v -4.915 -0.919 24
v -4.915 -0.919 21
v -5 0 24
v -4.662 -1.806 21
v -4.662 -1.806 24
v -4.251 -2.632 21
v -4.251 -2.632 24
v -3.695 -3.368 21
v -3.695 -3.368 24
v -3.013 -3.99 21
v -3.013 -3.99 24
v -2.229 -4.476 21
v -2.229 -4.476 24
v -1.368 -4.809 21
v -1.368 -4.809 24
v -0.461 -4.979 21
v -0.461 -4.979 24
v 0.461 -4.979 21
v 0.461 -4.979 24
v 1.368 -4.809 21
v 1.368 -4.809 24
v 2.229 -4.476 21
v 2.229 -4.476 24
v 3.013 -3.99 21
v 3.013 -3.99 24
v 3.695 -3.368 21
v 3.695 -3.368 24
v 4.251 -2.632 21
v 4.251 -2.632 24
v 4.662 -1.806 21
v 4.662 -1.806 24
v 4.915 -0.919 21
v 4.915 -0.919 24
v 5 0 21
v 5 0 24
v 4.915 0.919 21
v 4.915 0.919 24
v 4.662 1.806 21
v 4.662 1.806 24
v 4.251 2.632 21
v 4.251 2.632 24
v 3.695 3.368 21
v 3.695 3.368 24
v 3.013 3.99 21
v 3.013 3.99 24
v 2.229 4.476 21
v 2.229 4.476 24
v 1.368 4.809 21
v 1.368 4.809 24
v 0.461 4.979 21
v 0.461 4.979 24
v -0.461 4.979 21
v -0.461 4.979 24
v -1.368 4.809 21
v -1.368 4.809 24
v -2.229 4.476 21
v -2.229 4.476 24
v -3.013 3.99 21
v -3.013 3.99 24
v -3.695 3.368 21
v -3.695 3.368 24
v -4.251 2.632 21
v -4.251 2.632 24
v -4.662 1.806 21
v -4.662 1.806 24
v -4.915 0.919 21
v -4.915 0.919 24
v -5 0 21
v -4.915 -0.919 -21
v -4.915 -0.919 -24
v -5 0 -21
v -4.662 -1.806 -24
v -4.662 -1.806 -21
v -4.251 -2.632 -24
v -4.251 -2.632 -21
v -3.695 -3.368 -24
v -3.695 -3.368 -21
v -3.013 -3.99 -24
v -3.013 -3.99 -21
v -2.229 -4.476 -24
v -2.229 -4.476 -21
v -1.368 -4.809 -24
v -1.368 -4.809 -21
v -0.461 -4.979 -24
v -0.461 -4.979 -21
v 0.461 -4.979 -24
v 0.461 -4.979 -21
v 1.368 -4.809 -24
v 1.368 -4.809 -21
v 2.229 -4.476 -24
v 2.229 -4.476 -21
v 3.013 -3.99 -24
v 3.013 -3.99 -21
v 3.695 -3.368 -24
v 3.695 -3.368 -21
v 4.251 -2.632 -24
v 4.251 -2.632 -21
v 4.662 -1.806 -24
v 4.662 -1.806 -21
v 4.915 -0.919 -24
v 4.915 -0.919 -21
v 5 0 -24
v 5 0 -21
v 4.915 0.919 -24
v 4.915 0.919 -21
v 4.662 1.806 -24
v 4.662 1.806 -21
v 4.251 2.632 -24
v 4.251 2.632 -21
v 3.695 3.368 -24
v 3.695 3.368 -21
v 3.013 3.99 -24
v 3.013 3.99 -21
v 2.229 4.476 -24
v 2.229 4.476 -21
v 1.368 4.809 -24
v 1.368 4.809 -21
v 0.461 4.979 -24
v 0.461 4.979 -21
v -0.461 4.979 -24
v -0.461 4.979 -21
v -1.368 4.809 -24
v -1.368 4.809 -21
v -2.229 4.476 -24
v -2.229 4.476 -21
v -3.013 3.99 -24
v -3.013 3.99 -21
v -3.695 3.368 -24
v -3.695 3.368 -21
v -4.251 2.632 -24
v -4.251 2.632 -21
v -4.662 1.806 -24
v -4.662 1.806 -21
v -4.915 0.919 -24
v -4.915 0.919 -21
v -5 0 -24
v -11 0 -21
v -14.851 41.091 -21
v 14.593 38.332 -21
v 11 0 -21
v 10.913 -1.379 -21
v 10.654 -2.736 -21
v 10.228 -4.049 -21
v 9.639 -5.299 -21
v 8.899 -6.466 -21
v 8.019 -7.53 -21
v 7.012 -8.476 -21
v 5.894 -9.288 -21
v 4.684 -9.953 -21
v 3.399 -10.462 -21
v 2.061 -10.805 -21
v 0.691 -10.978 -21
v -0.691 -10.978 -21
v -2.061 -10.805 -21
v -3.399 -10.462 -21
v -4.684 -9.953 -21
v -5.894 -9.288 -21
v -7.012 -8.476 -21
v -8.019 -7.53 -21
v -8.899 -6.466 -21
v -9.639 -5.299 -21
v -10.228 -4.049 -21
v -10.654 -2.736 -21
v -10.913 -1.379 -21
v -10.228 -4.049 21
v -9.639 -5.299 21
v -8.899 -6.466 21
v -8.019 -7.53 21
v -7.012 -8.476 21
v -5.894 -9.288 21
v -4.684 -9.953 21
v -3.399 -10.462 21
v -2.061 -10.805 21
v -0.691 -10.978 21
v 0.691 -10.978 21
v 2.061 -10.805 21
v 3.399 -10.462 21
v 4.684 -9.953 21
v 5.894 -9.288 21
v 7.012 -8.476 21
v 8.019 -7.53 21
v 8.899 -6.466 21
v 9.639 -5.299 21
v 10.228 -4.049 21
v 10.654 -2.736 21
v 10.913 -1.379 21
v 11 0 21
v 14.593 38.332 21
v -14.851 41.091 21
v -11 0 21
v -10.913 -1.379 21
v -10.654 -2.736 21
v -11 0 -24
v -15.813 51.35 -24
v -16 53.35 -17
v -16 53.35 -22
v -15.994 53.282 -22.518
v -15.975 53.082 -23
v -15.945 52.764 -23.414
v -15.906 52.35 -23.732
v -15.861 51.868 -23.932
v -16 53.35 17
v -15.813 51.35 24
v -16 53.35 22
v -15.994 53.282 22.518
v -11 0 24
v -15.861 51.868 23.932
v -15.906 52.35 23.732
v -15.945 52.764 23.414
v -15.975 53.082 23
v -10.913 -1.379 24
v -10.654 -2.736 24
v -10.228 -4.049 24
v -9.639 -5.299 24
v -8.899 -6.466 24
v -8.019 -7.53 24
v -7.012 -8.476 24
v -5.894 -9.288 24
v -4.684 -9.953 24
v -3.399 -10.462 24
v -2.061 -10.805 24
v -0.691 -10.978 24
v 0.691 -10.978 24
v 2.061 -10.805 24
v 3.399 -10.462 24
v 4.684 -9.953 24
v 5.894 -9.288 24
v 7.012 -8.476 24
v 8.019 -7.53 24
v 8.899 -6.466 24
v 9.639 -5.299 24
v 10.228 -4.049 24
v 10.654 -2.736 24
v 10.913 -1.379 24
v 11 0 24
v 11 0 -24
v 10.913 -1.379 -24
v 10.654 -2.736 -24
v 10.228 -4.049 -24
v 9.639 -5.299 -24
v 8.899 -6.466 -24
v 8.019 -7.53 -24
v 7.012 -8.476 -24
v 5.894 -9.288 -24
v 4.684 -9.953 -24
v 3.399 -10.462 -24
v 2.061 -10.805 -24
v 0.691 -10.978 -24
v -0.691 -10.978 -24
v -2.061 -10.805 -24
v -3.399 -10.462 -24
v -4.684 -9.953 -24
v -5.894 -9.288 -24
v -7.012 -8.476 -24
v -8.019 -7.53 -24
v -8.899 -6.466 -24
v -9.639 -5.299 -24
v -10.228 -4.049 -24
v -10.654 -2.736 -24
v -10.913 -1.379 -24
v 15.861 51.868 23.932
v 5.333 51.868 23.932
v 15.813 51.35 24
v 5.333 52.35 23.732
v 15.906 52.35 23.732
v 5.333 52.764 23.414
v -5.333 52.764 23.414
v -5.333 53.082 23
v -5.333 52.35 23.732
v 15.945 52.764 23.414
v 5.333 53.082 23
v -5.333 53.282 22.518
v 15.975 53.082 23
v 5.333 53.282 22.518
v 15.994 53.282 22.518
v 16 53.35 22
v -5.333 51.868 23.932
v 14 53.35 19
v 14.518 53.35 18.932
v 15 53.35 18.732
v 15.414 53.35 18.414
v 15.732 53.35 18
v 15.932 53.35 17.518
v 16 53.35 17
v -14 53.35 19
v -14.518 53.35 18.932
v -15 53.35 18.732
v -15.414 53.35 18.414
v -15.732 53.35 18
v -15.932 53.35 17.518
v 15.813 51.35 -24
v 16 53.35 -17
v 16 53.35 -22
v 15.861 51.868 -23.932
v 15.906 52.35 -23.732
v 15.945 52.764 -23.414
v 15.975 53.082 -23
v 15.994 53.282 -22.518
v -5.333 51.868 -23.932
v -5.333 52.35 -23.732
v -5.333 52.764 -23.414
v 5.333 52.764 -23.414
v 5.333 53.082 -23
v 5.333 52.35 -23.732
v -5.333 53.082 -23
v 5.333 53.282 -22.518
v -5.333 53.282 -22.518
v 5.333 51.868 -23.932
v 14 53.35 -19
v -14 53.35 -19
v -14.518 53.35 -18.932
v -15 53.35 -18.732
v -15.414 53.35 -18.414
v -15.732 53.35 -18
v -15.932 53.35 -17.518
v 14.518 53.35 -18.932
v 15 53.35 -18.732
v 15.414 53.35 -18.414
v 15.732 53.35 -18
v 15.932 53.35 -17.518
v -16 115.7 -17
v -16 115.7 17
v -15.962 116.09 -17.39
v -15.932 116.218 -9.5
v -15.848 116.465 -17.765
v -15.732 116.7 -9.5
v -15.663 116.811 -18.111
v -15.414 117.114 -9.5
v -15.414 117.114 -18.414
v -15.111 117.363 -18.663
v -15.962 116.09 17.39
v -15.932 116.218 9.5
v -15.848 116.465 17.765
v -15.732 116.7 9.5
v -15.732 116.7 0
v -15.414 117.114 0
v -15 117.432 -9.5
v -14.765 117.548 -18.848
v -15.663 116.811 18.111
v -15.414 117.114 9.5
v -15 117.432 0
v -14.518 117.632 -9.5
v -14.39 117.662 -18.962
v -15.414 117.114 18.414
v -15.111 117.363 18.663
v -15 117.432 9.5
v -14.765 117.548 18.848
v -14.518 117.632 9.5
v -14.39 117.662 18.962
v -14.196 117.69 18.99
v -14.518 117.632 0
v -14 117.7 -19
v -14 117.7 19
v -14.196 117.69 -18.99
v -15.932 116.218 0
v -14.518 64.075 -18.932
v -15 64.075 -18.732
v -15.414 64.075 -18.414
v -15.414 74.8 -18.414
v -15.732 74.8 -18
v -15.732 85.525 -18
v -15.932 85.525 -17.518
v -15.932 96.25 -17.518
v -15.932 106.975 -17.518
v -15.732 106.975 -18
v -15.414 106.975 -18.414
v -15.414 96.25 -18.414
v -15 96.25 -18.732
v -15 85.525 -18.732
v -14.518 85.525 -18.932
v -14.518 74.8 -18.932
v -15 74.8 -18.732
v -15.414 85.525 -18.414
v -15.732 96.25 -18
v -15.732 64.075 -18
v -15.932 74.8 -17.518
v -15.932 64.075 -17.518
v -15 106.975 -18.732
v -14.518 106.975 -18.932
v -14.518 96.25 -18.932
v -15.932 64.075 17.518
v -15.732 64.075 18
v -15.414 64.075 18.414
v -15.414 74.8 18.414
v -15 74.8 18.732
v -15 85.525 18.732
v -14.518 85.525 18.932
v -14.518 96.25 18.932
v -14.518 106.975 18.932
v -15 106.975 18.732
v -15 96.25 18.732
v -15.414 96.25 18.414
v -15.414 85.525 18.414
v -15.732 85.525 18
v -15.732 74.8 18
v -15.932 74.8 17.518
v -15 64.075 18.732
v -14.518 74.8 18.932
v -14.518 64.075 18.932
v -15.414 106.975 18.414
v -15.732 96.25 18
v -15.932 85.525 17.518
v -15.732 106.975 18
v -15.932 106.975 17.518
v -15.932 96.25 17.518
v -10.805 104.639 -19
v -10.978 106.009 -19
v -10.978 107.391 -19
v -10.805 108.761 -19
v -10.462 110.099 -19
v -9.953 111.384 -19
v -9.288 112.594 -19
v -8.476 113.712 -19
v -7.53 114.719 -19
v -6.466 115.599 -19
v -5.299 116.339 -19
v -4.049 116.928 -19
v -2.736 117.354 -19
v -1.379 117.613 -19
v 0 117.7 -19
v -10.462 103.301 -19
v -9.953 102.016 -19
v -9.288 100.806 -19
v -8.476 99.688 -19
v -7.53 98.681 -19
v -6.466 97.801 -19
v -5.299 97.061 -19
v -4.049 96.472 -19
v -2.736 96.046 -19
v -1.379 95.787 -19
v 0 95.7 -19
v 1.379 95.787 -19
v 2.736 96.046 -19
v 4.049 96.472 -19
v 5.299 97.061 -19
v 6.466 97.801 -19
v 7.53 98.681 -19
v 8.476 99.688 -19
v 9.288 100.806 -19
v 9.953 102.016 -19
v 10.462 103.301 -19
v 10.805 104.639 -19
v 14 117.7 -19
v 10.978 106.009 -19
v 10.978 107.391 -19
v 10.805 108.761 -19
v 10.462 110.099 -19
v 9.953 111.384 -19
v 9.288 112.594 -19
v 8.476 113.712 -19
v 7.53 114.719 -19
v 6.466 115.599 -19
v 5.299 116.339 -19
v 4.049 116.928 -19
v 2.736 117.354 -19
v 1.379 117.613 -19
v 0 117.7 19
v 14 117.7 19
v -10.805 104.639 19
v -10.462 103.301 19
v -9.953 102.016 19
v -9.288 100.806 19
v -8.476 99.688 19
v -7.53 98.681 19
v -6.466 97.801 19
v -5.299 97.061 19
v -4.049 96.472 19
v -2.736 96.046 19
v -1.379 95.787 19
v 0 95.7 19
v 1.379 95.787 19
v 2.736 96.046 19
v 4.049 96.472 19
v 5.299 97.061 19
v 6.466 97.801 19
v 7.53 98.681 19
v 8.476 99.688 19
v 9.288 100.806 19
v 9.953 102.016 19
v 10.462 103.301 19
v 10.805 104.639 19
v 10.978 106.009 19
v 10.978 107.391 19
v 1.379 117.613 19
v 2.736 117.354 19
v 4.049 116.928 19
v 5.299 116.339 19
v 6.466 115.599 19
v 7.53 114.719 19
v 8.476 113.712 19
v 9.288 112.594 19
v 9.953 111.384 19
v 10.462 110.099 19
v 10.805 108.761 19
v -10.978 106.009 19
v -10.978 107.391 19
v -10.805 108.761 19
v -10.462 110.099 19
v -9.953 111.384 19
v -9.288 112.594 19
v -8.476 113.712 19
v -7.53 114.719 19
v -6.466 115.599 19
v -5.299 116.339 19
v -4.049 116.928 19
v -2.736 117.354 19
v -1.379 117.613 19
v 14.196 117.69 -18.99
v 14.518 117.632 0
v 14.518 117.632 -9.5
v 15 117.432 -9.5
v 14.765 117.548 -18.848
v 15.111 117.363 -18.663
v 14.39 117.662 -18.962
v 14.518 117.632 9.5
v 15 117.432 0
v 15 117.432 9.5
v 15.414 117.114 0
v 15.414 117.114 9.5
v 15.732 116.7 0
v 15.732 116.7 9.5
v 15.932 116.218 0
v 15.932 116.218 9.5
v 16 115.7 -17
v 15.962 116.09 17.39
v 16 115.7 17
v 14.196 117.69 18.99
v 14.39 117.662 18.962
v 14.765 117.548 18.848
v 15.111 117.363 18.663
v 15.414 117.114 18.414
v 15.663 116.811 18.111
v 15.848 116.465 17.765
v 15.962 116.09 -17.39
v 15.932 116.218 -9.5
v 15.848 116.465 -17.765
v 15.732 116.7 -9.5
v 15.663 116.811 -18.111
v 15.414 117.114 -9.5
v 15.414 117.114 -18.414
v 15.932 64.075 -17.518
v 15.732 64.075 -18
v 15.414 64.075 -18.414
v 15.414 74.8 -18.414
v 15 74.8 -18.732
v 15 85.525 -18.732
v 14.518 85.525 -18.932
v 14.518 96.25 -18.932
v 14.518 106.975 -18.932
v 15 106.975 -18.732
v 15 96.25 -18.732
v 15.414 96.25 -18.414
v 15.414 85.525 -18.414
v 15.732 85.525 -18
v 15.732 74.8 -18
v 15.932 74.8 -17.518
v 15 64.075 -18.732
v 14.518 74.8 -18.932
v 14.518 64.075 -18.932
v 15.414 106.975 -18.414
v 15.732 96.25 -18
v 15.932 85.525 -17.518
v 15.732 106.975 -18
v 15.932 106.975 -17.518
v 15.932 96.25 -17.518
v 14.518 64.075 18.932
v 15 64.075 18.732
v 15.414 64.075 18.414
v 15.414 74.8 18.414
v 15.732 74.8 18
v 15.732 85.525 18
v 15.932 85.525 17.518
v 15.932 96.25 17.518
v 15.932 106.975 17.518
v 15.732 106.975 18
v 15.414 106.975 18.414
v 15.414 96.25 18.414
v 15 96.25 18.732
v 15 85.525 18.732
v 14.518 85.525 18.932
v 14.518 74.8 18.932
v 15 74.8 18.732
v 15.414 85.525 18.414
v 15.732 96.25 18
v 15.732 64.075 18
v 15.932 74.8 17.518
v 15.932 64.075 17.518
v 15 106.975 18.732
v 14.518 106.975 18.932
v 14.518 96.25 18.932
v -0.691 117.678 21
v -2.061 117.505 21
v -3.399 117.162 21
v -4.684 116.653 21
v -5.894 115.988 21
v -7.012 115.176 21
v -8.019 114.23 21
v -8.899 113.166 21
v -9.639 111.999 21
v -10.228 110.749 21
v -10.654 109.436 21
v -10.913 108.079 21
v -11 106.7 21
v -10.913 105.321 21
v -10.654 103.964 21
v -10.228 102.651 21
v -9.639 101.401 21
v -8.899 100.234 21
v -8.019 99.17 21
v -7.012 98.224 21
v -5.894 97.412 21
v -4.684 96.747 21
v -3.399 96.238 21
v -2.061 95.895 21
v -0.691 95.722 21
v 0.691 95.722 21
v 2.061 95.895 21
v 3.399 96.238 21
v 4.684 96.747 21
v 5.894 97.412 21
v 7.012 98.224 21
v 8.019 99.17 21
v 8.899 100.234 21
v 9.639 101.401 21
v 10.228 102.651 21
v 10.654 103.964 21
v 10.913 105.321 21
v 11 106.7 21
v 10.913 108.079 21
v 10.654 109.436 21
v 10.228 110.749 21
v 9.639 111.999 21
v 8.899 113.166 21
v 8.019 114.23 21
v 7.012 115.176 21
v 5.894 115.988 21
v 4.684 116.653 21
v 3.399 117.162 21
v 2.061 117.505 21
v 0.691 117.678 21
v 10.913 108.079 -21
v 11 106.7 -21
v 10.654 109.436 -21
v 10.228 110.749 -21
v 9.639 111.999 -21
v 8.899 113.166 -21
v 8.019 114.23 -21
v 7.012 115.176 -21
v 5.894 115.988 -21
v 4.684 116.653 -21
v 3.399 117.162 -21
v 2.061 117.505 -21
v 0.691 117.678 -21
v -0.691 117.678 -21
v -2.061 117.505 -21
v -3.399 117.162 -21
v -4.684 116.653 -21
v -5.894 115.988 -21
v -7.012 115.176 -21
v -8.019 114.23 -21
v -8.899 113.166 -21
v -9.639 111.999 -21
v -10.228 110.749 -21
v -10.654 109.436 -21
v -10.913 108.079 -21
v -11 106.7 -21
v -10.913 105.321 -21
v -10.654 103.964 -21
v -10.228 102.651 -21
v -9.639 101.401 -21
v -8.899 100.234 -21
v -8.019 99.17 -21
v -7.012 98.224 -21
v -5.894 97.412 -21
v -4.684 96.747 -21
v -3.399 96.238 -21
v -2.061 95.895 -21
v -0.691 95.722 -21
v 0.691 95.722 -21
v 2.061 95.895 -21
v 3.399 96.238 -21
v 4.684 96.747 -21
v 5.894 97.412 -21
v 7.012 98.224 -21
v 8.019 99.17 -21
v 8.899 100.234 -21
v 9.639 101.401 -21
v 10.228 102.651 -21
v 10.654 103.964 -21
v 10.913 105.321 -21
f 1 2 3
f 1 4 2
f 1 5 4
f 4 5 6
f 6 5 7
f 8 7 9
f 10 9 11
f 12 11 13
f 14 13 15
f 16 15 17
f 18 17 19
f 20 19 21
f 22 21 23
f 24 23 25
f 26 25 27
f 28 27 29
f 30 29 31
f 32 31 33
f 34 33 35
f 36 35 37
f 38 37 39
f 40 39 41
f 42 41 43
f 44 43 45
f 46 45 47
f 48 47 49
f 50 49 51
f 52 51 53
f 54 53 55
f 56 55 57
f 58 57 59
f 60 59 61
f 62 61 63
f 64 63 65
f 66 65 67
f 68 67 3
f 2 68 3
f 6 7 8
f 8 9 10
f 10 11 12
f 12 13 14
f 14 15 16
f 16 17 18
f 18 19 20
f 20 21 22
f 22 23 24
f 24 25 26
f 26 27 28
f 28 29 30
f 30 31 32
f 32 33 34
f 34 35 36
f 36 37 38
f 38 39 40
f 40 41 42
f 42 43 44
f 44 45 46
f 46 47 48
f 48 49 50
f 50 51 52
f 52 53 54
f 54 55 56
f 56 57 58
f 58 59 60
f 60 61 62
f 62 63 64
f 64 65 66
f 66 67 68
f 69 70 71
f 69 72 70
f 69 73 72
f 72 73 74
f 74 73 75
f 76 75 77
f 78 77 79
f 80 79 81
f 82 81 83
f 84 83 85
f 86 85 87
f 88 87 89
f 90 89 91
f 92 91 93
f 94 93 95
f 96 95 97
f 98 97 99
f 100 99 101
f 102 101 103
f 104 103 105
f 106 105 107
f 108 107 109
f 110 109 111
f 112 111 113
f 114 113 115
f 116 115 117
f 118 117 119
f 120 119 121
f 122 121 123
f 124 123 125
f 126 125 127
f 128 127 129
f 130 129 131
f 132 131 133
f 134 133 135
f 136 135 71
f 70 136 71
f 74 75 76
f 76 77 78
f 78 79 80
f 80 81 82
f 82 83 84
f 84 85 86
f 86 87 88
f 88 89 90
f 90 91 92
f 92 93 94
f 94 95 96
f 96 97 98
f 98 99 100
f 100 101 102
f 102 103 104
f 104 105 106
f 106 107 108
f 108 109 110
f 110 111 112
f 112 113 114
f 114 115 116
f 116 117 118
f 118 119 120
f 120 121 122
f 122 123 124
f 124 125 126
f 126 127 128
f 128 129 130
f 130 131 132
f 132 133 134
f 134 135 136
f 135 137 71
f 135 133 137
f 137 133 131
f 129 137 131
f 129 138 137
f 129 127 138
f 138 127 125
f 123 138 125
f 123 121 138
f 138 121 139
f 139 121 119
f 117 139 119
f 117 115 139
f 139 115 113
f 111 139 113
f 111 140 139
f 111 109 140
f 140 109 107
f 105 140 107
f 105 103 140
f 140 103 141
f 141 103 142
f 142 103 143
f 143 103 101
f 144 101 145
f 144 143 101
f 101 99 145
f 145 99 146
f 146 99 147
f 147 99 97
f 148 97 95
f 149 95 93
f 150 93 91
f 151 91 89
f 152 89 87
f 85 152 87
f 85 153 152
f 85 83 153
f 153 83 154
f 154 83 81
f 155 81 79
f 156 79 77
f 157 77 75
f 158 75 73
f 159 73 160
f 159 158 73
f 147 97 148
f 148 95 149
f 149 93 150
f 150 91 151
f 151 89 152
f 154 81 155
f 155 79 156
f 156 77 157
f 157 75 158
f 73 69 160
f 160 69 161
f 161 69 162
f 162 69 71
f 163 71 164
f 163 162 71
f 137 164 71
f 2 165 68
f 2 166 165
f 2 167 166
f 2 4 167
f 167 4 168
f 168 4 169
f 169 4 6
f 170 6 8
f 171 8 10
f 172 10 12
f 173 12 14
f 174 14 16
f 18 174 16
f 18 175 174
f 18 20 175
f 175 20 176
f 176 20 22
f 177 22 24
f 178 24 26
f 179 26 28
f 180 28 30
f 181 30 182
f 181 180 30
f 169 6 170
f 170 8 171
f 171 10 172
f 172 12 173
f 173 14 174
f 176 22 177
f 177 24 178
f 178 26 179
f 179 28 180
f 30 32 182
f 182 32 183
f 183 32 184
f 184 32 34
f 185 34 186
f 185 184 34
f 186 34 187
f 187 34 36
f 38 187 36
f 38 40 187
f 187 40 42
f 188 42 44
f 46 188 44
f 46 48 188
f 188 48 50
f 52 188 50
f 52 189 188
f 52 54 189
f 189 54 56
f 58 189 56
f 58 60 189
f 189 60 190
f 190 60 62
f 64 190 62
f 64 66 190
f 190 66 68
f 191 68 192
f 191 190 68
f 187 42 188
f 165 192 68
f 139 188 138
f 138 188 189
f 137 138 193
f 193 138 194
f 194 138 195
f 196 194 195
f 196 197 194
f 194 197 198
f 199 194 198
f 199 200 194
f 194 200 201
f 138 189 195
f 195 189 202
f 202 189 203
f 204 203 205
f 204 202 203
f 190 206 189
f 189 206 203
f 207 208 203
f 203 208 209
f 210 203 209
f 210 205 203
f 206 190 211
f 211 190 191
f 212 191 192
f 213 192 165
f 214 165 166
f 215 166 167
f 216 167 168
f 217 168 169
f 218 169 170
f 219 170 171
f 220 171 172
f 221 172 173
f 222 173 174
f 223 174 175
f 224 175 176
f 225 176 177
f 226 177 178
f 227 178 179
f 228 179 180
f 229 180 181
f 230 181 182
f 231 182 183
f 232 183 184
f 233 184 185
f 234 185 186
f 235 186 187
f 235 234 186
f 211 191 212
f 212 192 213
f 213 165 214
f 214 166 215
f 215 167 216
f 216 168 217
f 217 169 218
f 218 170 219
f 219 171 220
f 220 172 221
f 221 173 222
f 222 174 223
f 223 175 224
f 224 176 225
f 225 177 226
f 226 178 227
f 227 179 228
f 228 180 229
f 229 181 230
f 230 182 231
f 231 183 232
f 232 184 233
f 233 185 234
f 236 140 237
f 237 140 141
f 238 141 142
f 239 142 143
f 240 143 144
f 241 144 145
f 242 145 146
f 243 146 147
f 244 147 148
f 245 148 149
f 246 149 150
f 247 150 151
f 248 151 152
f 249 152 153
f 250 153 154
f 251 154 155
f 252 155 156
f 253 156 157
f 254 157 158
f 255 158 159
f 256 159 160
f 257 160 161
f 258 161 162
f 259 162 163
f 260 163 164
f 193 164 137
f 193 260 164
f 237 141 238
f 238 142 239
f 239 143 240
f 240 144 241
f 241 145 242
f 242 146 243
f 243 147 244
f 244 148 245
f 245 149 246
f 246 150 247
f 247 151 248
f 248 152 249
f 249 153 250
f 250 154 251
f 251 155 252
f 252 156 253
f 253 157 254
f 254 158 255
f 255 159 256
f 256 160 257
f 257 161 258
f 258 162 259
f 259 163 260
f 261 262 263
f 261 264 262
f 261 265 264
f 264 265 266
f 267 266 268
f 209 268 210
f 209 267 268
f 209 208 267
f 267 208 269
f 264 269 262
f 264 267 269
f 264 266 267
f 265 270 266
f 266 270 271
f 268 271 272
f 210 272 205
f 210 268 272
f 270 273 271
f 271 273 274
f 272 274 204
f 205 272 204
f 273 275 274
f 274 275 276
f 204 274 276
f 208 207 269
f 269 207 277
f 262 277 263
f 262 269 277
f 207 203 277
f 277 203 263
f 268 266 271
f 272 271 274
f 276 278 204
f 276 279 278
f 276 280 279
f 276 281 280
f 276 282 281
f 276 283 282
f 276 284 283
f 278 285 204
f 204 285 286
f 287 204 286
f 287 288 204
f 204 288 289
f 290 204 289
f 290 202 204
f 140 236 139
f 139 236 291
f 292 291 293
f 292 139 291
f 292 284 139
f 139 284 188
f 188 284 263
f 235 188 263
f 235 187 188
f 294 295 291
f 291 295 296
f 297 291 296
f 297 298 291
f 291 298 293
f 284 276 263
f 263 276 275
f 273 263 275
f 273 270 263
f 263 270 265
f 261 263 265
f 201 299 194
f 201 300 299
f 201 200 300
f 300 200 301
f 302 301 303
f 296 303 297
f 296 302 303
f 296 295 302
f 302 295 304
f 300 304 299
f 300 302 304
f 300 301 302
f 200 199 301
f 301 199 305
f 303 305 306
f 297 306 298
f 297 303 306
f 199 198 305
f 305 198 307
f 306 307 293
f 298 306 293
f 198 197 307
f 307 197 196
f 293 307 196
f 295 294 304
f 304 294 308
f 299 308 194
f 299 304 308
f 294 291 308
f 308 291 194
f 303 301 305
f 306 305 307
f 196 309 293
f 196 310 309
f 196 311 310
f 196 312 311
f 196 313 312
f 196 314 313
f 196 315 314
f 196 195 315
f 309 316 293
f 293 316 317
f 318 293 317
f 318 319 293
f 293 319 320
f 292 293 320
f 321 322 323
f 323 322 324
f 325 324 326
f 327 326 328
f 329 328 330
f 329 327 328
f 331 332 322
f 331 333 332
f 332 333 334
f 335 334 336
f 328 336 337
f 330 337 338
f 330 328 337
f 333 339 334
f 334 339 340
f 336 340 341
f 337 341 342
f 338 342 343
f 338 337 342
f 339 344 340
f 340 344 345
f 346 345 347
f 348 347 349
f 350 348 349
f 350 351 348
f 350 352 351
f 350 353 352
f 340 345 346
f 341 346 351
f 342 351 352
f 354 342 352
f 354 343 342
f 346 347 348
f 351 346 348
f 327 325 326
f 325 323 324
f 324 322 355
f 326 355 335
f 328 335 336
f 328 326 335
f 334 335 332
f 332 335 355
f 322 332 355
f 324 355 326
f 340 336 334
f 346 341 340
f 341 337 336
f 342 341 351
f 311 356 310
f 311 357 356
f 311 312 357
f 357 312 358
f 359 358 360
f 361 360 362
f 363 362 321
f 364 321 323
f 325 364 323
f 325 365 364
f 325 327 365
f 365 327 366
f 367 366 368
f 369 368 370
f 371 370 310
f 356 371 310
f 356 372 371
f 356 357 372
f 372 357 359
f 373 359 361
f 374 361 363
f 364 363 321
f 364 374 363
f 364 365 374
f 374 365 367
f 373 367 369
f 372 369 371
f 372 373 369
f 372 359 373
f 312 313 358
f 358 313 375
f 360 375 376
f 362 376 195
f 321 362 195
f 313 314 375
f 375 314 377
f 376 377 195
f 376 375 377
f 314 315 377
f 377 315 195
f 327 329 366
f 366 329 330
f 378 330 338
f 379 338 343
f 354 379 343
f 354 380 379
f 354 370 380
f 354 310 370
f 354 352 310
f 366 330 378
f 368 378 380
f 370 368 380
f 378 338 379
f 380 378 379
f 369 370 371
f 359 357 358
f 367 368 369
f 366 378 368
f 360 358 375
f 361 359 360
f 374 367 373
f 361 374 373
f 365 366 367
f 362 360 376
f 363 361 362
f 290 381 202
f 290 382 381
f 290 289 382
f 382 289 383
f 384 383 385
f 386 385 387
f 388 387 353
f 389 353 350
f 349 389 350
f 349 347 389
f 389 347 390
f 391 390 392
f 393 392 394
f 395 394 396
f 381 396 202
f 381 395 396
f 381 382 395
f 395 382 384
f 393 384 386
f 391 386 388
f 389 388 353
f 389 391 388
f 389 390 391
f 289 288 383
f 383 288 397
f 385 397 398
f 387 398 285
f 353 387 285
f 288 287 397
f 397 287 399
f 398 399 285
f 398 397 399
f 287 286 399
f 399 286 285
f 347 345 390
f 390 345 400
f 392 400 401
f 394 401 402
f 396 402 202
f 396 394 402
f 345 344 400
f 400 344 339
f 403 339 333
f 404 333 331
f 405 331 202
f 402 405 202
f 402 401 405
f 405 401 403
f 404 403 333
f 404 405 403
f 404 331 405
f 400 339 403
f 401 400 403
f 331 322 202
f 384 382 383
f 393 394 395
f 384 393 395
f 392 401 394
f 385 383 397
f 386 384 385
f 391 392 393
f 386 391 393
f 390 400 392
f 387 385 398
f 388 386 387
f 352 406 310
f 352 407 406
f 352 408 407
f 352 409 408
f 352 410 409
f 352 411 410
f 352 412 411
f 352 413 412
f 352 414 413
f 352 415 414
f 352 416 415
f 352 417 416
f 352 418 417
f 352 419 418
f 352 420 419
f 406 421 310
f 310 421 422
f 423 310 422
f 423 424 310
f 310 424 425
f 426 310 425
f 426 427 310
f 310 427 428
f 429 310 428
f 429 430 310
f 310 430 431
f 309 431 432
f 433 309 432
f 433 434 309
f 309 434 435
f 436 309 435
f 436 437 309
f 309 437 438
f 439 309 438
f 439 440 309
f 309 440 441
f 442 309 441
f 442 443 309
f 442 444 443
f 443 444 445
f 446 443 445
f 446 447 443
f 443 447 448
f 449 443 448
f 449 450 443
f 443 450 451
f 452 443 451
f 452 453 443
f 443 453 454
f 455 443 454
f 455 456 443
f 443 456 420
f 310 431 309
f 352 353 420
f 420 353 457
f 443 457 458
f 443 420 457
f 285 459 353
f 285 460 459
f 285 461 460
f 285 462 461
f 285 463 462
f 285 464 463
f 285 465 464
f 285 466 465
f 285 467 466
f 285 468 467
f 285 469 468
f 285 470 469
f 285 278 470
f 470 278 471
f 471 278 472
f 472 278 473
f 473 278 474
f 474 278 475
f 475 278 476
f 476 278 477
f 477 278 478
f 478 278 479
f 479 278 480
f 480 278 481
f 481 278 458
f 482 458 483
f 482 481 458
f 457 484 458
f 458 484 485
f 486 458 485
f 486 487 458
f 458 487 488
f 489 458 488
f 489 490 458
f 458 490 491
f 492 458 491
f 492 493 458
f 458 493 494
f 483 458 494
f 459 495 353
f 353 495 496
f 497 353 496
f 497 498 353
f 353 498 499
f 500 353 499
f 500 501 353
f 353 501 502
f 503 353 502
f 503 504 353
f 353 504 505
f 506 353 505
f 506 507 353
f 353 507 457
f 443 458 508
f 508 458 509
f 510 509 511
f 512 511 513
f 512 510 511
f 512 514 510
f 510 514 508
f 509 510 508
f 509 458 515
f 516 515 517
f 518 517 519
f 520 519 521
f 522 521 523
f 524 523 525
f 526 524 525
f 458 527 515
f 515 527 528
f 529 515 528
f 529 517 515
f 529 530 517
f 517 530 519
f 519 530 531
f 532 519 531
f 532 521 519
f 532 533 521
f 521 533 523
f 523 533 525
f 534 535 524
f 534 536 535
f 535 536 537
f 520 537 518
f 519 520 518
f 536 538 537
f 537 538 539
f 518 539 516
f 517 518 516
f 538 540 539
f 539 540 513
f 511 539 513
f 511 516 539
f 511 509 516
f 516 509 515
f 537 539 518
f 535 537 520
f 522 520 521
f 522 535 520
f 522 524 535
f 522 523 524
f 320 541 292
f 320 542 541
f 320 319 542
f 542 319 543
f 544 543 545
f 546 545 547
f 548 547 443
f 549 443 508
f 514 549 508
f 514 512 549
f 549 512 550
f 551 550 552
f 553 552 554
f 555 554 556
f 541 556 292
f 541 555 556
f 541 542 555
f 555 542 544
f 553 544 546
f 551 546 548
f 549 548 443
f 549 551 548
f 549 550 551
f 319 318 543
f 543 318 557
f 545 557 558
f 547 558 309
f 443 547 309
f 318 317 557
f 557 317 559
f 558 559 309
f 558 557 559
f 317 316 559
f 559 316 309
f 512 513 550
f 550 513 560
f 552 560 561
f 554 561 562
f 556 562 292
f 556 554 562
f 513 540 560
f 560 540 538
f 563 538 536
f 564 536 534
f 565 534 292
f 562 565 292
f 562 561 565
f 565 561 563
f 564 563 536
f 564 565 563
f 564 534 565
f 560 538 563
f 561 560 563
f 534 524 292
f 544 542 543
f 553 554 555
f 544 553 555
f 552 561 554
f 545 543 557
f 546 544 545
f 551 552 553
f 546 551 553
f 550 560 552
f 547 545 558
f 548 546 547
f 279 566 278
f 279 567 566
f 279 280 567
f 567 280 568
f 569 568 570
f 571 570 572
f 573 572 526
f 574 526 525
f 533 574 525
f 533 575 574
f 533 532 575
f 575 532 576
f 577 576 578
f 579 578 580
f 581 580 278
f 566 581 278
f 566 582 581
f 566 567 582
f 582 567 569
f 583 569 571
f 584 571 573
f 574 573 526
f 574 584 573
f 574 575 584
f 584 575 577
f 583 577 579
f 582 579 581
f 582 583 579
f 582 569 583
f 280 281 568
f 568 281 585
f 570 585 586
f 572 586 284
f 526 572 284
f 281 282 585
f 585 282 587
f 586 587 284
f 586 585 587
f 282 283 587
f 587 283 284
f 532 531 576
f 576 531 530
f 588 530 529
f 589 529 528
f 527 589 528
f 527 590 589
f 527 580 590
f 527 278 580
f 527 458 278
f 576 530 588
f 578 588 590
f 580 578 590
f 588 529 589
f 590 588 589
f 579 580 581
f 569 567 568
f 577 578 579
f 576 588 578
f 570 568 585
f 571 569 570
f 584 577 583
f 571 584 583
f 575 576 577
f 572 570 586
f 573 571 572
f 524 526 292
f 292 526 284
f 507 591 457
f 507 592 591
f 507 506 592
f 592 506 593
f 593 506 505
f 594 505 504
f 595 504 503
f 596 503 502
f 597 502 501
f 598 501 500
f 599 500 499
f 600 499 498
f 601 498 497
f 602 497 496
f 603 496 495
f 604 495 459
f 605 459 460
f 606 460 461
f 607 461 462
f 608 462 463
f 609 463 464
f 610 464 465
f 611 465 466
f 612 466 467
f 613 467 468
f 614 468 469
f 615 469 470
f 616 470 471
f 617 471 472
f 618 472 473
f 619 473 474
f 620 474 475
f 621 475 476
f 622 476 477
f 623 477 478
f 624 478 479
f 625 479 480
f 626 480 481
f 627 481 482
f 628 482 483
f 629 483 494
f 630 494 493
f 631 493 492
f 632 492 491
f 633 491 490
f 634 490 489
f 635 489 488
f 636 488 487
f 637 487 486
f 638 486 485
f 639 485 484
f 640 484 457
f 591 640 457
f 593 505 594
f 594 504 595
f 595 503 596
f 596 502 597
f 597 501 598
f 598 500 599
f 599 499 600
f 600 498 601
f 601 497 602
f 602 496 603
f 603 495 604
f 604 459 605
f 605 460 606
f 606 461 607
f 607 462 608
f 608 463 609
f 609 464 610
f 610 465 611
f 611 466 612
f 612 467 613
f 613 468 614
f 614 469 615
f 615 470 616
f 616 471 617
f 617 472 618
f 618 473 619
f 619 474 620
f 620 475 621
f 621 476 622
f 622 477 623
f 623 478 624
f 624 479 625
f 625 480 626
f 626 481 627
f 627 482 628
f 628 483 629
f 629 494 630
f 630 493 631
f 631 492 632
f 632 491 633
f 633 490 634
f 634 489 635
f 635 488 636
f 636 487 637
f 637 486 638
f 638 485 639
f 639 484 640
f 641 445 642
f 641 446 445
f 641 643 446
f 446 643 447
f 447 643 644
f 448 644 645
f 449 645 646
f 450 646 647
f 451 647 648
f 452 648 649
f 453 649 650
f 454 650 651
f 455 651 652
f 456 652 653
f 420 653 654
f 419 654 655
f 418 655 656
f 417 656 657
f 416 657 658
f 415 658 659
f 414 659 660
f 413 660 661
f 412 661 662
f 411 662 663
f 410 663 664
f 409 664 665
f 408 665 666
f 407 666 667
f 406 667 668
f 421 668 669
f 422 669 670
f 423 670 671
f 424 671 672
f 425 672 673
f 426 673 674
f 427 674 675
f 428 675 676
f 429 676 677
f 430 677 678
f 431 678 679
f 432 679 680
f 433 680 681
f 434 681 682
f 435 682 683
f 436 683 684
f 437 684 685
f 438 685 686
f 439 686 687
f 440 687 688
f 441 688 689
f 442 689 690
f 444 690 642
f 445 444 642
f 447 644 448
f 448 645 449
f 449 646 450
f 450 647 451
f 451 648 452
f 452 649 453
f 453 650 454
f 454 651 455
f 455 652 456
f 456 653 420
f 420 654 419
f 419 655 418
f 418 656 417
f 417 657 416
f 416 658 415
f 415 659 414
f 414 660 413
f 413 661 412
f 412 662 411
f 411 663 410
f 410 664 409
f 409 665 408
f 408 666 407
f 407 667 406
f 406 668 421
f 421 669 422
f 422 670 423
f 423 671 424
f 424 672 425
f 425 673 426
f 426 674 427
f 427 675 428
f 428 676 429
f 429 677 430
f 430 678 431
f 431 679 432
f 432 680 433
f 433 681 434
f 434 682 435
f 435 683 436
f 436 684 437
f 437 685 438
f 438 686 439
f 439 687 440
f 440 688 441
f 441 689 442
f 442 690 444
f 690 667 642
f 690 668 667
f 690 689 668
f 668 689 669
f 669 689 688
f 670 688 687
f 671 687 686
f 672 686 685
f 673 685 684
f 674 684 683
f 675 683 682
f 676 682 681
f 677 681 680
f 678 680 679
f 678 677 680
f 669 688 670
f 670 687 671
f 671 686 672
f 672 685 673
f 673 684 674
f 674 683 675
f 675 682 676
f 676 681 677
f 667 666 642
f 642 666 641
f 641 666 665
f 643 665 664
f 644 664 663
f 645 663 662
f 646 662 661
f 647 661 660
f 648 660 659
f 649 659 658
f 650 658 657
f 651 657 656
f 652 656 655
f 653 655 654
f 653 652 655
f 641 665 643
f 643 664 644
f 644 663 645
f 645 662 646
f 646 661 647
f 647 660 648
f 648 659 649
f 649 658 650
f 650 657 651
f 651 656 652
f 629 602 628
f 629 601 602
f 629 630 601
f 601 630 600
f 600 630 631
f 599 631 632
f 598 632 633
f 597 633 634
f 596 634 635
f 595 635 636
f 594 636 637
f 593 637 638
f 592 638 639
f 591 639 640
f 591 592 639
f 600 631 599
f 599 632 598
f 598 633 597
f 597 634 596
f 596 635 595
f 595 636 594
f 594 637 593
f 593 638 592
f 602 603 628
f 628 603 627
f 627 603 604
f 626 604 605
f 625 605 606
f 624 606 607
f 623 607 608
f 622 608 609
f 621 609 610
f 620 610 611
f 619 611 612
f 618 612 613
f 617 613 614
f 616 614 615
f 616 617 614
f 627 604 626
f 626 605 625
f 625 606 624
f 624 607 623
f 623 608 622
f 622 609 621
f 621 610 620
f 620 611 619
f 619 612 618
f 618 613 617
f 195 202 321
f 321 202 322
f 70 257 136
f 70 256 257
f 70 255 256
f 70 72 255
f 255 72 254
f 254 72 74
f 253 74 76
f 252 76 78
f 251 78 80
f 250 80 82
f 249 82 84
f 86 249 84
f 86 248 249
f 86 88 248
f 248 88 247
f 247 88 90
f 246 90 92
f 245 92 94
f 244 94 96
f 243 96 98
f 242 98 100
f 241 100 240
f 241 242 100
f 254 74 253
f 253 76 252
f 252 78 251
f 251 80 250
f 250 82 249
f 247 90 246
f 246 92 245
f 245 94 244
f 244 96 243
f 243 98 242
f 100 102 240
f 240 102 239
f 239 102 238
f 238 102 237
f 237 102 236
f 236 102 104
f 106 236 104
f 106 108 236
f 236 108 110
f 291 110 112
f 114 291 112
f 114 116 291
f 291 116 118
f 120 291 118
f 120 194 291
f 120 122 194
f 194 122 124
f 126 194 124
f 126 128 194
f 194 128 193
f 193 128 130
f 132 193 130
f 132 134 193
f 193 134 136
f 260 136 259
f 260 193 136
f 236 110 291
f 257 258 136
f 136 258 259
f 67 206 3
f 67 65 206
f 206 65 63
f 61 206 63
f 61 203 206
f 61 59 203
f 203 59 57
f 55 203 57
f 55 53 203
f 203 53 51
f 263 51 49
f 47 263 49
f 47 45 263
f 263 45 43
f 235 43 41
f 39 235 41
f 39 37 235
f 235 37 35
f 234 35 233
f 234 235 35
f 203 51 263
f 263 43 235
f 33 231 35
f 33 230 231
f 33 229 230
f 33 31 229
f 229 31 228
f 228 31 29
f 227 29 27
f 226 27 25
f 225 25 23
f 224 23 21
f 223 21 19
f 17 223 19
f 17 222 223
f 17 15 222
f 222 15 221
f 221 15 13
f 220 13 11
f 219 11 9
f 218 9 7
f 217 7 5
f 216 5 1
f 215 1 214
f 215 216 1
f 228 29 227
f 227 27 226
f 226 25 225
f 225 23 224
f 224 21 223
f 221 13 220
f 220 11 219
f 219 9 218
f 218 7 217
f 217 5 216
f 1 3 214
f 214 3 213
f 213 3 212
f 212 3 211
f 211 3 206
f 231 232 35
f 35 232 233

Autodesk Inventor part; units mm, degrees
ref_plane "YZ Plane" through (0, 0, 0) normal (1, 0, 0) x (0, 1, 0)
ref_plane "XZ Plane" through (0, 0, 0) normal (0, 1, 0) x (-1, 0, 0)
ref_plane "XY Plane" through (0, 0, 0) normal (0, 0, 1) x (1, 0, 0)
sketch "Sketch1" plane through (0, 0, 0) normal (0, 0, 1) x (1, 0, 0)
  circle A0 centre (0, 0) radius 11
  circle A1 centre (0, 106.7) radius 11
  line L0 (16, 106.7) -> (16, 53.35)
  line L1 (16, 107.3237) -> (16, 117.7)
  line L2 (16, 117.7) -> (-16, 117.7)
  line L3 (-16, 117.7) -> (-16, 53.35)
  line L4 (11, 0) -> (16, 53.35)
  line L5 (-11, 0) -> (-16, 53.35)
  line L6 (11, 0) -> (16, 53.35)
  line L7 (16, 53.35) -> (16, 117.7)
  line L8 (-16, 117.7) -> (-16, 53.35)
  line L9 (-11, 0) -> (-16, 53.35)
  line L10 (-16, 117.7) -> (16, 117.7)
  line L11 (16, 53.35) -> (-16, 53.35)
  dimension "d1" = 22
  dimension "d2" = 22
  dimension "d3" = 16
  dimension "d4" = 32
extrude "Extrusion1" add sketch "Sketch1" along normal mid plane 48 contours A0 | A0 L5 L11 L4
extrude "Extrusion2" add sketch "Sketch1" along normal mid plane 38 contours A1 | L11 L3 L2 L1 L7 L0
extrude "Extrusion3" add sketch "Sketch1" along normal mid plane 42 contours A1
fillet "Fillet1" radius 2 8 edges at (16, 117.7, 0) (-16, 117.7, 0) (16, 85.525, 19) (-16, 85.525, 19) (-16, 85.525, -19) (16, 85.525, -19) (0, 53.35, -24) (0, 53.35, 24)
sketch "Sketch2" plane through (11, 0, 24) normal (0.9956369, -0.0933118, 0) x (0, 0, -1)
  ellipse E0 centre (2, 51.575) end of major axis (2, 53.5838) minor radius 2 (2, 53.5838) -> (0, 51.575) ccw projected
  line L0 (48, 0) -> (0, 0) projected
  line L1 (48, 0) -> (48, 51.575) projected
  line L2 (0, 0) -> (3, 0)
  line L3 (3, 0) -> (3, 38.5)
  line L4 (3, 38.5) -> (45, 38.5)
  line L5 (45, 38.5) -> (45, -15.2464)
  line L6 (45, -15.2464) -> (3, -15.2464)
  line L7 (3, -15.2464) -> (3, 0)
  point P0 (24, -1.0264)
  dimension "d12" = 3
  dimension "d13" = 38.5
  dimension "d14" = 42
extrude "Extrusion4" cut sketch "Sketch2" along normal mid plane 100
sketch "Sketch3" plane through (0, 0, -24) normal (0, 0, -1) x (-1, 0, 0)
  arc A0 (-11, 0) -> (11, 0) centre (0, 0) ccw projected
  circle A1 centre (0, 0) radius 5
  dimension "d17" = 10
extrude "Extrusion5" cut sketch "Sketch3" against normal through all
properties part number "Bicep"
